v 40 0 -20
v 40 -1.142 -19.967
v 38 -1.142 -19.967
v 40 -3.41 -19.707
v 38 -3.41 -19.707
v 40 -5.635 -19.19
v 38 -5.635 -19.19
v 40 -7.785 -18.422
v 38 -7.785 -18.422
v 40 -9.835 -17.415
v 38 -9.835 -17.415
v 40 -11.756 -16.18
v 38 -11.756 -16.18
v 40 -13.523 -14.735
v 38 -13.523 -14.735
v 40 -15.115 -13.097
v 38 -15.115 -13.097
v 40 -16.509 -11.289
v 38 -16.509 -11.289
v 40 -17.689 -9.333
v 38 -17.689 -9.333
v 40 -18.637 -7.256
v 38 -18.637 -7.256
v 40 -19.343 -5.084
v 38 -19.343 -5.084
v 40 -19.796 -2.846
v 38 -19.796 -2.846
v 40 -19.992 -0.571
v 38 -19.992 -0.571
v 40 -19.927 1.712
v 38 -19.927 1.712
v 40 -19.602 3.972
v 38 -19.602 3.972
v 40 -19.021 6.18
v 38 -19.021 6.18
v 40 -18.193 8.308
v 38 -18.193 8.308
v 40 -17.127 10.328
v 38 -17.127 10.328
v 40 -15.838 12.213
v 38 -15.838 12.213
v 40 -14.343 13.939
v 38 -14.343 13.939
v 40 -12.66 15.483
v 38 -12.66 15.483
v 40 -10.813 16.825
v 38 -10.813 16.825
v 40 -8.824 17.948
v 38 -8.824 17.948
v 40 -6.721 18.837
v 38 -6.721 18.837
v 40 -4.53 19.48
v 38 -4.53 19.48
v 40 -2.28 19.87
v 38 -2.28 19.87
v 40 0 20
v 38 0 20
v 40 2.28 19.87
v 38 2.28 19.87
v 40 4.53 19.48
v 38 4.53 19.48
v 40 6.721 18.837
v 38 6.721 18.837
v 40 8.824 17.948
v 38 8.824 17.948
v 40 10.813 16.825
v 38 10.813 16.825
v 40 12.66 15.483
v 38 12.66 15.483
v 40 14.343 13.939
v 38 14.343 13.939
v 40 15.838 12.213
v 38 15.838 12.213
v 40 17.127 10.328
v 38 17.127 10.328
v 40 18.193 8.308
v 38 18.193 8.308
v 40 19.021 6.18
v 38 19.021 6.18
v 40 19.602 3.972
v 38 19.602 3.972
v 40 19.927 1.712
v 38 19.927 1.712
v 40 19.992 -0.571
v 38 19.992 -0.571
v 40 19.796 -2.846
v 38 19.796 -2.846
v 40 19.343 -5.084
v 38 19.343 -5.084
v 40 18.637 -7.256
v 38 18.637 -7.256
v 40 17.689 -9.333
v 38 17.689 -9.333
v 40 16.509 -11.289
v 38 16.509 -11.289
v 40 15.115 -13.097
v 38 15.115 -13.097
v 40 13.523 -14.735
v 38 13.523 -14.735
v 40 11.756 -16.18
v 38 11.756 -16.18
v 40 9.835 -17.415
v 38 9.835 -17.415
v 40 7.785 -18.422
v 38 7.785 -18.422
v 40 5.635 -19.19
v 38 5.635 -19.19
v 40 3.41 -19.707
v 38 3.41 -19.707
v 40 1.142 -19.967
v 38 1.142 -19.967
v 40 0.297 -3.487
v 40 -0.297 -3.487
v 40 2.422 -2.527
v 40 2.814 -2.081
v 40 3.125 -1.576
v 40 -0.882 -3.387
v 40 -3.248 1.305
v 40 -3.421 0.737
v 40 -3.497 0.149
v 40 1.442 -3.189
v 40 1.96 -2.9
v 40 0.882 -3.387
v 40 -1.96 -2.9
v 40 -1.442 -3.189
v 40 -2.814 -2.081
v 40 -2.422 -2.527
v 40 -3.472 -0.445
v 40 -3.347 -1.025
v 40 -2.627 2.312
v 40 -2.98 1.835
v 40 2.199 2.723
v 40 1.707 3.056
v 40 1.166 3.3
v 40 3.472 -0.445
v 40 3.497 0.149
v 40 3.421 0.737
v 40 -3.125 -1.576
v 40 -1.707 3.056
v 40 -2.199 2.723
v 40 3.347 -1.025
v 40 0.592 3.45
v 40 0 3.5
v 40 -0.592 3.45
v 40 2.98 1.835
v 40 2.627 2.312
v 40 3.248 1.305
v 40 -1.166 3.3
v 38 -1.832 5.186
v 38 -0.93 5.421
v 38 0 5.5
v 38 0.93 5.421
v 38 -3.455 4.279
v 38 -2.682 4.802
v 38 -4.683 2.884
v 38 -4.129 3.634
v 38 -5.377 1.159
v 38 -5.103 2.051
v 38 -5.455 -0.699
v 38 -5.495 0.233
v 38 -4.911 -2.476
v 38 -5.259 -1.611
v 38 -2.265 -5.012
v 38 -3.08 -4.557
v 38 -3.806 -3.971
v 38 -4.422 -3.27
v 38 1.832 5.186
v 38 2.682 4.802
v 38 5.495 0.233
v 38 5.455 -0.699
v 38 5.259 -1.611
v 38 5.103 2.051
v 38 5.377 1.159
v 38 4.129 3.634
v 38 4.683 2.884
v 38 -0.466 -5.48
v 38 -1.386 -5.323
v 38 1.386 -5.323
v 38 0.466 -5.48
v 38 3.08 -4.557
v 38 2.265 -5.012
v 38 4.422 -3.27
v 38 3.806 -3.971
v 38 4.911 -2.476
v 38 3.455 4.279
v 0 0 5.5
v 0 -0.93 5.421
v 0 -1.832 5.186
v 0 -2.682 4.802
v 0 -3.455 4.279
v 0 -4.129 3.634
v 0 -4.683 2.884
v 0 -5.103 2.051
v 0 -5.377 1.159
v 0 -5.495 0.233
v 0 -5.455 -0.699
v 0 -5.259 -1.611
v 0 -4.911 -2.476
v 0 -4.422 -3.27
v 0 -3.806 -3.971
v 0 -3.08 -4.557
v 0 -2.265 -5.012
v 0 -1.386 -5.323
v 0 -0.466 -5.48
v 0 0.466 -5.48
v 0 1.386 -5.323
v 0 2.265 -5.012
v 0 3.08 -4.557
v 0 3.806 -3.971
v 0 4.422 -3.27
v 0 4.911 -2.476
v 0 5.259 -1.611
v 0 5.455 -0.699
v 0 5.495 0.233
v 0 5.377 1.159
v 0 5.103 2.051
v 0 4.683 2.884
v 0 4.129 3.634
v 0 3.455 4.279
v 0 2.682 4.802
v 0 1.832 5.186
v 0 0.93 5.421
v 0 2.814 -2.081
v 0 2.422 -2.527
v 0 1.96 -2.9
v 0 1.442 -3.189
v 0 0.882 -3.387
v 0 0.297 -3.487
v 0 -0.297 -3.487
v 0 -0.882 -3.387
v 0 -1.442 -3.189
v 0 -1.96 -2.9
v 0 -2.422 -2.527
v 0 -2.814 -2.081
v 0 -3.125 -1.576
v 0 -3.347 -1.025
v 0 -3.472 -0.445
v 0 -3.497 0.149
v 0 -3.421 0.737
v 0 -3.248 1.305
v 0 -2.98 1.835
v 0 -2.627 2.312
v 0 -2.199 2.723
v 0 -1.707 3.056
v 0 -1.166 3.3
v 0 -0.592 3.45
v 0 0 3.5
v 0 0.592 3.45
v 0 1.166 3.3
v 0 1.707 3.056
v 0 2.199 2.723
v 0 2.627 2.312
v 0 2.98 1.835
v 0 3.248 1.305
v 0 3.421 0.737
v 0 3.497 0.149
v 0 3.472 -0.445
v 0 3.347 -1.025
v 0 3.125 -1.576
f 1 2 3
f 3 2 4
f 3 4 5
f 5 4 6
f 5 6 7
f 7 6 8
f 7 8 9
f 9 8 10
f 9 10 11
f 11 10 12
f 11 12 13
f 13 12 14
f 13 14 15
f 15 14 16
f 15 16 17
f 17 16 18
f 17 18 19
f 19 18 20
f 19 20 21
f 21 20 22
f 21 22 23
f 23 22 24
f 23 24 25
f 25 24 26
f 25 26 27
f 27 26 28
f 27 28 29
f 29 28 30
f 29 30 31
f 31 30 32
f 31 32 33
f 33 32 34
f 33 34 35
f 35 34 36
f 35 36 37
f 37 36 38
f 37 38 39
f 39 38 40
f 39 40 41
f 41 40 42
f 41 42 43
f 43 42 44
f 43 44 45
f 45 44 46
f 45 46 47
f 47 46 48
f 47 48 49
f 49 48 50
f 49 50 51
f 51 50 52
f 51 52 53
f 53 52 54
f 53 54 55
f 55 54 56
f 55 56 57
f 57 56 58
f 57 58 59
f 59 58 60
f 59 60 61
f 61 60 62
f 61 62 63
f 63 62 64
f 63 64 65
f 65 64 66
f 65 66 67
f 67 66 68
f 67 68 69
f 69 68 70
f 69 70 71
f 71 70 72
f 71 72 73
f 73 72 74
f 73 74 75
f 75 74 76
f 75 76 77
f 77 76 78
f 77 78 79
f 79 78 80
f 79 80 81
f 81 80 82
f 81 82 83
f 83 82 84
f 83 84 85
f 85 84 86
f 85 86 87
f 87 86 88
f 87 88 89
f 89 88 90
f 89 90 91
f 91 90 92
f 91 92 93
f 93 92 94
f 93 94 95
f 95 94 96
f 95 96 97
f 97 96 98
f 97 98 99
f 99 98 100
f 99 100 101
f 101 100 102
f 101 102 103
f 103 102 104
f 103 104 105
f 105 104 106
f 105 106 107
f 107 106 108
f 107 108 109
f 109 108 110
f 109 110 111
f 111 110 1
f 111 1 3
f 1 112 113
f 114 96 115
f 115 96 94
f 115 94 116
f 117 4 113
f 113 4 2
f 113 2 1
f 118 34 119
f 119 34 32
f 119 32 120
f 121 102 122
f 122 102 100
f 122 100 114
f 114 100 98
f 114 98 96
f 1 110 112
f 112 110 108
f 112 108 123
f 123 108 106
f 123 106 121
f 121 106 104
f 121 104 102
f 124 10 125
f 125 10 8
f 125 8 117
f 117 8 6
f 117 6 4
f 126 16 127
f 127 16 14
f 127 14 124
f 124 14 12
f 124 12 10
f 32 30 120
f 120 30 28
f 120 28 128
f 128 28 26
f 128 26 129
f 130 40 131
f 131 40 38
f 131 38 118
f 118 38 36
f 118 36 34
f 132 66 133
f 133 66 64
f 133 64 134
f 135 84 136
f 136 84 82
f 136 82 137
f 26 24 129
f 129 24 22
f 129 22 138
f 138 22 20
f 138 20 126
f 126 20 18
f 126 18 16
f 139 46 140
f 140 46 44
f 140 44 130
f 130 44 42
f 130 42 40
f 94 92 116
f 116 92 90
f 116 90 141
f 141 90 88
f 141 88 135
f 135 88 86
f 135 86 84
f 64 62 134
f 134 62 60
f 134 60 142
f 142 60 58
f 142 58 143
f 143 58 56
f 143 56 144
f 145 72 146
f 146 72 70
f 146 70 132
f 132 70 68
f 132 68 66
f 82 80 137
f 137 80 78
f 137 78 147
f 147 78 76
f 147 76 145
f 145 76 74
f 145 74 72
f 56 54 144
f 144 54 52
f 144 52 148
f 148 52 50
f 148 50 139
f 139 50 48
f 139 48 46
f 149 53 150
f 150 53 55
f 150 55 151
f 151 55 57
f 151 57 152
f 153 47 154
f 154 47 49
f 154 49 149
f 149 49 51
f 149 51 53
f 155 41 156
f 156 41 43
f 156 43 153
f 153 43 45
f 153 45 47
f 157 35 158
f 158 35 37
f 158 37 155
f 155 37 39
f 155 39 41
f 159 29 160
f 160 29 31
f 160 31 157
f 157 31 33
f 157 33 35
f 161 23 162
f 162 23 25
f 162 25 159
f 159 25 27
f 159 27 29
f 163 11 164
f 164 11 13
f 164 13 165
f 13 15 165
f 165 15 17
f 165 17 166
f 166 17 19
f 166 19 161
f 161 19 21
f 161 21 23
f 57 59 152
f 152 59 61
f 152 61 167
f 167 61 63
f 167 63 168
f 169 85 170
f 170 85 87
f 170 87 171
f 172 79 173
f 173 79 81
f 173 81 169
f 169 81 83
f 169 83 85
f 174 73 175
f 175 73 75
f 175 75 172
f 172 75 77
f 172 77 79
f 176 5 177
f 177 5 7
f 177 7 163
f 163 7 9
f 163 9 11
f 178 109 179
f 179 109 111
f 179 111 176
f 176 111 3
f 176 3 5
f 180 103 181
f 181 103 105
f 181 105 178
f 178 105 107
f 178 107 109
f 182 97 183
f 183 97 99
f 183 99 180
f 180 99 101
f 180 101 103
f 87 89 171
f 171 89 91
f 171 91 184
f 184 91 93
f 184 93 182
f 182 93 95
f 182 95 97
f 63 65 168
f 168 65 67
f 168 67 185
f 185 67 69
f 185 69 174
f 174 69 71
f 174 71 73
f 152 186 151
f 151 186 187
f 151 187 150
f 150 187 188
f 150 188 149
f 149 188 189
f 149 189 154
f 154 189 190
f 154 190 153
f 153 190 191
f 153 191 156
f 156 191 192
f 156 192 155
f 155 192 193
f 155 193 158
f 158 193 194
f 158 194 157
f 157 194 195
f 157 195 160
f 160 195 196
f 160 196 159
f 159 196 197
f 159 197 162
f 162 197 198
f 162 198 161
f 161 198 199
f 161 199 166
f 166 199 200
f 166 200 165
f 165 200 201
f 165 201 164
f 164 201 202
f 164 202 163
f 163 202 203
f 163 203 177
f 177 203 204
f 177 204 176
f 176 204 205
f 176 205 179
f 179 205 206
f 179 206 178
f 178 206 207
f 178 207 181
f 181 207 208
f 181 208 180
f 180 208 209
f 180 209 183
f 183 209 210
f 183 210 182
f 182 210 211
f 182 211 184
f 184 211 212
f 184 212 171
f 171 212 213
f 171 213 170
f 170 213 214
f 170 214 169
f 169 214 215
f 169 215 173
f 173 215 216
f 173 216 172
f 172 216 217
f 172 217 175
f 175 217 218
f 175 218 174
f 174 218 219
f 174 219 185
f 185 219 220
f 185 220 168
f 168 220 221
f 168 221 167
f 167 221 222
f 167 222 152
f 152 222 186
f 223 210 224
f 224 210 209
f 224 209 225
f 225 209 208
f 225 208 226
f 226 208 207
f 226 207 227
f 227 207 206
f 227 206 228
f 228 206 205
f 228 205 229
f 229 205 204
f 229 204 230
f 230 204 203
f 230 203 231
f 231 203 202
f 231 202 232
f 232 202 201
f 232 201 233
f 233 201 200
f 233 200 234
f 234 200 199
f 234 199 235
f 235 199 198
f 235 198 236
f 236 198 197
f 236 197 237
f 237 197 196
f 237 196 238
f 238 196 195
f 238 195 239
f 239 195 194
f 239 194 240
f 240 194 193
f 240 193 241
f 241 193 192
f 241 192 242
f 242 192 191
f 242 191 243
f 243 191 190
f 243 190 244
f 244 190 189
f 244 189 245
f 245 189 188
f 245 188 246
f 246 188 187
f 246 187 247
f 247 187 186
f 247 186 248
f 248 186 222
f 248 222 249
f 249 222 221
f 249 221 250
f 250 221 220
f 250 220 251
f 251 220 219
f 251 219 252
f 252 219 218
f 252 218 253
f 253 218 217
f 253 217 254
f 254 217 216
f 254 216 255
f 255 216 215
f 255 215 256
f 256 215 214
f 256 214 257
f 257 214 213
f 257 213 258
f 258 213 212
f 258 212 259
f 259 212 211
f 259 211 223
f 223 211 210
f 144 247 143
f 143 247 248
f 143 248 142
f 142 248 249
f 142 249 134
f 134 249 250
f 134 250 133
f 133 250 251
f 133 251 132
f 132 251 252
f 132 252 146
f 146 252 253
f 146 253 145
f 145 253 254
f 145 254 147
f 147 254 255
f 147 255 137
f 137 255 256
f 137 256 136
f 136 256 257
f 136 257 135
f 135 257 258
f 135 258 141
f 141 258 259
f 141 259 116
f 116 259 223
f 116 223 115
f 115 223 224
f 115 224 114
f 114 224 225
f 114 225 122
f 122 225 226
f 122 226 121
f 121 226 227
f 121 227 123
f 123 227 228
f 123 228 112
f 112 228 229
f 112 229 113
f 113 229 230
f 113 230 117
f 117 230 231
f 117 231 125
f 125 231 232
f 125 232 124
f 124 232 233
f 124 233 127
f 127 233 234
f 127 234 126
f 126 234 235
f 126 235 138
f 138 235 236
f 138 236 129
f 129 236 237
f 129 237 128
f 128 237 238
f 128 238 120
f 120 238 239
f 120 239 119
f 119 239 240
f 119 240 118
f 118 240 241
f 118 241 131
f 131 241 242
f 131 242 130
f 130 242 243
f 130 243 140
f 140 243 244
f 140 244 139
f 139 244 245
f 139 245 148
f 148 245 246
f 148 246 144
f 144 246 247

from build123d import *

# Parameters (mm, degrees)
SKETCH1_R           = 20
BOSS_EXTRUDE1_DEPTH = 40
SKETCH2_R           = 20
SKETCH2_R_2         = 5.5
CUT_EXTRUDE1_DEPTH  = 38
SKETCH3_R           = 3.5
CUT_EXTRUDE2_DEPTH  = 40


with BuildPart() as part:
    # Sketch1 → Boss-Extrude1 (new body)
    with BuildSketch(Plane(origin=(0, 0, 0), x_dir=(0, 0, -1), z_dir=(1, 0, 0))):
        Circle(SKETCH1_R)
    extrude(amount=BOSS_EXTRUDE1_DEPTH)

    # Sketch2 → Cut-Extrude1 (cut)
    with BuildSketch(Plane.ZY):
        Circle(SKETCH2_R)
        Circle(SKETCH2_R_2, mode=Mode.SUBTRACT)
    extrude(amount=-CUT_EXTRUDE1_DEPTH, mode=Mode.SUBTRACT)

    # Sketch3 → Cut-Extrude2 (cut)
    with BuildSketch(Plane.ZY):
        Circle(SKETCH3_R)
    extrude(amount=-CUT_EXTRUDE2_DEPTH, mode=Mode.SUBTRACT)


solid = part.part
